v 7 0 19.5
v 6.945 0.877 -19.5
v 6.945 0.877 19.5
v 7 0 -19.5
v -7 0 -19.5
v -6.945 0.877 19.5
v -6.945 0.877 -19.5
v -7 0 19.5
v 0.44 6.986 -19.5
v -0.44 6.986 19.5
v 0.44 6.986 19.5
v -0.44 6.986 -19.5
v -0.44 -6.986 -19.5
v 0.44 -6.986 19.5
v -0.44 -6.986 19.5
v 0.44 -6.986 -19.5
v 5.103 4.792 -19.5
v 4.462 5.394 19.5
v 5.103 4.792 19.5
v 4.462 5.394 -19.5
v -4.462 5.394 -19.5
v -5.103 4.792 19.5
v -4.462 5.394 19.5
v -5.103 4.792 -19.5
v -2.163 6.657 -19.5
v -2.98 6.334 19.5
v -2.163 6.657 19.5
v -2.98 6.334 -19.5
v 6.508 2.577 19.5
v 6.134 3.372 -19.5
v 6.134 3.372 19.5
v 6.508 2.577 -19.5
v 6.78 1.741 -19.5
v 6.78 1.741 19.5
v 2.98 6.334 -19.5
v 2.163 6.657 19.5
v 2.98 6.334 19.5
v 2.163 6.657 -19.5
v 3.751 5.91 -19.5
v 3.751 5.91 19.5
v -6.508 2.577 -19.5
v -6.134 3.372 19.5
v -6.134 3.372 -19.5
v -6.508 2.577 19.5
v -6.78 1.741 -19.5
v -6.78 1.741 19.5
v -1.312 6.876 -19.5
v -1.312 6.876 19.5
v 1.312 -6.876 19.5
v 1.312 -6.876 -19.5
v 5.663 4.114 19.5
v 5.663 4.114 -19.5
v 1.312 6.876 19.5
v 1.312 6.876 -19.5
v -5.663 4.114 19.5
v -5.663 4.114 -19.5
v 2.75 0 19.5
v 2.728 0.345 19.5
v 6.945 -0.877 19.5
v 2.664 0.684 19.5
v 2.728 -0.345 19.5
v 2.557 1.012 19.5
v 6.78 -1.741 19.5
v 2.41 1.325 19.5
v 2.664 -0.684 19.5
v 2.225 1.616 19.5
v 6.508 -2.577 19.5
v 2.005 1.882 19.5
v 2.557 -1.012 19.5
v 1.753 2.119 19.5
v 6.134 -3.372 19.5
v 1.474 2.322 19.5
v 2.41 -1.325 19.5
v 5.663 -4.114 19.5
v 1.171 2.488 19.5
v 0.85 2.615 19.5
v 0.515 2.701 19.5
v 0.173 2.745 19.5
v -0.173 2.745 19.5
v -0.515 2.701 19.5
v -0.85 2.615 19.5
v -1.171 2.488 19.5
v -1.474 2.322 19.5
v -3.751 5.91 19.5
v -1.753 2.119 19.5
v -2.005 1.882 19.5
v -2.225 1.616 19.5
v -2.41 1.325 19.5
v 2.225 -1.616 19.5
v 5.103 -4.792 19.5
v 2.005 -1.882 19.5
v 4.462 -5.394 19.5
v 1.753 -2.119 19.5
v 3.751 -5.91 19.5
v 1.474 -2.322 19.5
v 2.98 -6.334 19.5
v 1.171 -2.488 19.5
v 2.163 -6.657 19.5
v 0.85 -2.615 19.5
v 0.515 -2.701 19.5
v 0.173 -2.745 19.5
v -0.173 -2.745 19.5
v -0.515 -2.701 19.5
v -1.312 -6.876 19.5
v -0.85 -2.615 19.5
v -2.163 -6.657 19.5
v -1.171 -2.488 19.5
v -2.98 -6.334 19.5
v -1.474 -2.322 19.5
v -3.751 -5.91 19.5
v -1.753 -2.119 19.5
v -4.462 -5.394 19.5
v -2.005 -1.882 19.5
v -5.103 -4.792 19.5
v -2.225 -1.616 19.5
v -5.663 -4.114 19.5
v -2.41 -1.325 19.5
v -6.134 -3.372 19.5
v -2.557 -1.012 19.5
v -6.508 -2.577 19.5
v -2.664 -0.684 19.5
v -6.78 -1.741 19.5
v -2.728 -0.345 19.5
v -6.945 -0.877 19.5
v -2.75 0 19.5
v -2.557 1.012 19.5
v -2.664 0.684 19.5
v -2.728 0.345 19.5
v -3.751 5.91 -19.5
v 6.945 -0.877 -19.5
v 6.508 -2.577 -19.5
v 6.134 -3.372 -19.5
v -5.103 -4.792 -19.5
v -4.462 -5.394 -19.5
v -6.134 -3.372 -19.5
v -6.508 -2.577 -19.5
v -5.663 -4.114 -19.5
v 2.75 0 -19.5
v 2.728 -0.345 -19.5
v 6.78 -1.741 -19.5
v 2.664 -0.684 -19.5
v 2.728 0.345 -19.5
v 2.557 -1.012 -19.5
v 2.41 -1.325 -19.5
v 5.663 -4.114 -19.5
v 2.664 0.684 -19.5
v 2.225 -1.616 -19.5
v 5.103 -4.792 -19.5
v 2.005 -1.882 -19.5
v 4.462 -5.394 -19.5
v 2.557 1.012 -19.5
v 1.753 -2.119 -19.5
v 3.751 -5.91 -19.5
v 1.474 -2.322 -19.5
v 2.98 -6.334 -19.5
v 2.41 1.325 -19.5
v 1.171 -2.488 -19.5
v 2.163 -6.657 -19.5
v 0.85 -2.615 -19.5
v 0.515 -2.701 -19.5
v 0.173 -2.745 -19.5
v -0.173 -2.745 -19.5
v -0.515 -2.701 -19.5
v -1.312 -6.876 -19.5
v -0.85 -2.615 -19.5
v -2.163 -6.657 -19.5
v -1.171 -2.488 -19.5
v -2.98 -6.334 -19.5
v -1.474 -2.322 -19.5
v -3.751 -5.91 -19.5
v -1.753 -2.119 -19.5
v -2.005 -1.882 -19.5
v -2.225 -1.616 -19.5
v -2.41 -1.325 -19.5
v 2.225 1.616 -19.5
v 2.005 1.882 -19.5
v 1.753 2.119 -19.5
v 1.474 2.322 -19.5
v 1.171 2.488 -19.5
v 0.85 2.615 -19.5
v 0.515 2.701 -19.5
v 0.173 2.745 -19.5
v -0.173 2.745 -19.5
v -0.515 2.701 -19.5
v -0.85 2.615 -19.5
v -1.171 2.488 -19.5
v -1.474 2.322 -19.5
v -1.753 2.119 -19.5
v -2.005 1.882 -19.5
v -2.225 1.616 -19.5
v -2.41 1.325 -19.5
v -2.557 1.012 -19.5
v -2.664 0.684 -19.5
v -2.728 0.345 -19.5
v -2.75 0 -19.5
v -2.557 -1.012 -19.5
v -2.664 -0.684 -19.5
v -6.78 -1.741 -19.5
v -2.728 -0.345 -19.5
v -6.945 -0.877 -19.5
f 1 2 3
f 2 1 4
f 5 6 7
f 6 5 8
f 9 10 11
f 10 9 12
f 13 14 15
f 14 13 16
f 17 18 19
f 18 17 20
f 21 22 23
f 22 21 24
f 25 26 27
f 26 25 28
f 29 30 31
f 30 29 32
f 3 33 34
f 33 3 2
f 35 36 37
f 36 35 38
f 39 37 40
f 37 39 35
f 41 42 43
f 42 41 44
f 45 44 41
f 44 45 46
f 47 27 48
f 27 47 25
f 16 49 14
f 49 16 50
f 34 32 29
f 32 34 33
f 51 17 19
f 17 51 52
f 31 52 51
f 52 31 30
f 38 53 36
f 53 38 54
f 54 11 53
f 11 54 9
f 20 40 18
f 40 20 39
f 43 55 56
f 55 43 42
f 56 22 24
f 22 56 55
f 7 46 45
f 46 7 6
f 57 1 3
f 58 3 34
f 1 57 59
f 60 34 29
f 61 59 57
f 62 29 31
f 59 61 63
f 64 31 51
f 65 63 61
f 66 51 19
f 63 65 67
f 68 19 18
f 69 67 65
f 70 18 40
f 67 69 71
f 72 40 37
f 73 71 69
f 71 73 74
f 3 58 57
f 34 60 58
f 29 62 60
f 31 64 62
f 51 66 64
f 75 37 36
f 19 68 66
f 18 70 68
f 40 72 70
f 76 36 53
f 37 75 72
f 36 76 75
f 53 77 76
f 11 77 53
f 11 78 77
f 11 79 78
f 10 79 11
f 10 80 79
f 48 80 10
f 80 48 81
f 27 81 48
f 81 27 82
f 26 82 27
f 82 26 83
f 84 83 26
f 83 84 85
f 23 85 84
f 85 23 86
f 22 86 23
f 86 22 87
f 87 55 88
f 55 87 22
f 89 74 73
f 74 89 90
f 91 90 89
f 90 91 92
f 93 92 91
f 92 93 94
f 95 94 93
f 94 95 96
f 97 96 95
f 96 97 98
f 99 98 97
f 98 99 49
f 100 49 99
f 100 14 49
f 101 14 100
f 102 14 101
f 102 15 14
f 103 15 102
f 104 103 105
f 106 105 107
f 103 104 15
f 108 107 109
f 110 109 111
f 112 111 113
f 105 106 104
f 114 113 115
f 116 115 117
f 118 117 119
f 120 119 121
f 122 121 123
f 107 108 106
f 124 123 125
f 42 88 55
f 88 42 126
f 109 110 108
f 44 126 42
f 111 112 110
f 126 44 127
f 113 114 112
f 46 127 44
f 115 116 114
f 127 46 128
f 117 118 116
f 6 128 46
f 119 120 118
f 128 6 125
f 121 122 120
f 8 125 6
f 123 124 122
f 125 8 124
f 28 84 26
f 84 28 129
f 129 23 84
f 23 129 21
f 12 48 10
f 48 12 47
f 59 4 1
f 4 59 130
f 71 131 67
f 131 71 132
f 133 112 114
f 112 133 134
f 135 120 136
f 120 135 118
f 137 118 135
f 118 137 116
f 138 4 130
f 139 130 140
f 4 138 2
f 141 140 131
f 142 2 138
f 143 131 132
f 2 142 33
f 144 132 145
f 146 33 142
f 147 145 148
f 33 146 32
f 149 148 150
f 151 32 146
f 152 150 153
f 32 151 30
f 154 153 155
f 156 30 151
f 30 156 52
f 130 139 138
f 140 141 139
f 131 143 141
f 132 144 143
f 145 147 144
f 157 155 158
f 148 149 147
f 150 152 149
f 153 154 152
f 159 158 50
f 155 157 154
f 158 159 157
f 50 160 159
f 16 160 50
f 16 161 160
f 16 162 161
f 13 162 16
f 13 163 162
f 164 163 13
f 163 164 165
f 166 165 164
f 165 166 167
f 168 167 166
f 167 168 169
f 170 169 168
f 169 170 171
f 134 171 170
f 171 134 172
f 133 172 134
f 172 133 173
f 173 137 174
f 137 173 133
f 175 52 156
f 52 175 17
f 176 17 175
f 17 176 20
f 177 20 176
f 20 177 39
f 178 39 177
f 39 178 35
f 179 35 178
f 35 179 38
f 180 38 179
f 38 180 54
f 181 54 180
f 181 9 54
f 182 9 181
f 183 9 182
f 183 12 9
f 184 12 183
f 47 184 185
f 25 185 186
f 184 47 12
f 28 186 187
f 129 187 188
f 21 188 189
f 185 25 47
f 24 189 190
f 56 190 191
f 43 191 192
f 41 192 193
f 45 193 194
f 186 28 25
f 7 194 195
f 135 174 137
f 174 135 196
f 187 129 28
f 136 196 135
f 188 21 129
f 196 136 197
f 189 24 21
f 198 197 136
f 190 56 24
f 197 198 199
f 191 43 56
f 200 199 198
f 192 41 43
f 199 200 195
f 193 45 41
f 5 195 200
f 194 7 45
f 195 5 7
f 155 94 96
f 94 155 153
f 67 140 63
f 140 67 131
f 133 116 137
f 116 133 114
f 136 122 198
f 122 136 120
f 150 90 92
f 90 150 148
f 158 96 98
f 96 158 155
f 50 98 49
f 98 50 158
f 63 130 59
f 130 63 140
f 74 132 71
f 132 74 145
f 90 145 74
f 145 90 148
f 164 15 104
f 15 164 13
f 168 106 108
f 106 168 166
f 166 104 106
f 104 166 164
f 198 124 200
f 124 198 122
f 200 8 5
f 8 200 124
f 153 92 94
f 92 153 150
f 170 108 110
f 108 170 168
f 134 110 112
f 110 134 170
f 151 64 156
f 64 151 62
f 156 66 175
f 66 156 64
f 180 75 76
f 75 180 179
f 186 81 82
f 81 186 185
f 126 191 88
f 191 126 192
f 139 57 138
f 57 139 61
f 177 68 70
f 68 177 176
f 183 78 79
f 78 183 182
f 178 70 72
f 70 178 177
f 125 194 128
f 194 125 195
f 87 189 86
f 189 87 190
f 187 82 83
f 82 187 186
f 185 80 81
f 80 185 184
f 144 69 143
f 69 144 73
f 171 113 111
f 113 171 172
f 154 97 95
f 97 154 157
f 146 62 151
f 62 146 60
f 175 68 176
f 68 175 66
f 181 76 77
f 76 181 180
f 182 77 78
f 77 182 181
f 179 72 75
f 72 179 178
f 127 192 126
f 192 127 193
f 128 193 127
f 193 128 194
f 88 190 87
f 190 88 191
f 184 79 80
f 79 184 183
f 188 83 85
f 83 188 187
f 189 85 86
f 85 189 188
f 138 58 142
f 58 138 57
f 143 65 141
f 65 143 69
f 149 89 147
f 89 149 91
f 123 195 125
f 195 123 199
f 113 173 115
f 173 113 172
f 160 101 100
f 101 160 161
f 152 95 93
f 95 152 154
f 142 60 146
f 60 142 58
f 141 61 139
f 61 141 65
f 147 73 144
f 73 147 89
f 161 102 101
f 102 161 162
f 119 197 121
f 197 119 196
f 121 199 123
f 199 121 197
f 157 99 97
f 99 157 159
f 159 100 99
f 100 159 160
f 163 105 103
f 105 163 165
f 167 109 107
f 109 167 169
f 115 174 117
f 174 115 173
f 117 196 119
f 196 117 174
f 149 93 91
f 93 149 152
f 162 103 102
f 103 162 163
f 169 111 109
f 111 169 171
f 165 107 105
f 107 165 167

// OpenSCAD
$fn = 50;


difference() {
	union() {
		translate(v = [0, 0, -19.5000000000]) {
			cylinder(h = 39, r = 7.0000000000);
		}
	}
	union() {
		translate(v = [0, 0, -100.0000000000]) {
			cylinder(h = 200, r = 2.7500000000);
		}
	}
}
